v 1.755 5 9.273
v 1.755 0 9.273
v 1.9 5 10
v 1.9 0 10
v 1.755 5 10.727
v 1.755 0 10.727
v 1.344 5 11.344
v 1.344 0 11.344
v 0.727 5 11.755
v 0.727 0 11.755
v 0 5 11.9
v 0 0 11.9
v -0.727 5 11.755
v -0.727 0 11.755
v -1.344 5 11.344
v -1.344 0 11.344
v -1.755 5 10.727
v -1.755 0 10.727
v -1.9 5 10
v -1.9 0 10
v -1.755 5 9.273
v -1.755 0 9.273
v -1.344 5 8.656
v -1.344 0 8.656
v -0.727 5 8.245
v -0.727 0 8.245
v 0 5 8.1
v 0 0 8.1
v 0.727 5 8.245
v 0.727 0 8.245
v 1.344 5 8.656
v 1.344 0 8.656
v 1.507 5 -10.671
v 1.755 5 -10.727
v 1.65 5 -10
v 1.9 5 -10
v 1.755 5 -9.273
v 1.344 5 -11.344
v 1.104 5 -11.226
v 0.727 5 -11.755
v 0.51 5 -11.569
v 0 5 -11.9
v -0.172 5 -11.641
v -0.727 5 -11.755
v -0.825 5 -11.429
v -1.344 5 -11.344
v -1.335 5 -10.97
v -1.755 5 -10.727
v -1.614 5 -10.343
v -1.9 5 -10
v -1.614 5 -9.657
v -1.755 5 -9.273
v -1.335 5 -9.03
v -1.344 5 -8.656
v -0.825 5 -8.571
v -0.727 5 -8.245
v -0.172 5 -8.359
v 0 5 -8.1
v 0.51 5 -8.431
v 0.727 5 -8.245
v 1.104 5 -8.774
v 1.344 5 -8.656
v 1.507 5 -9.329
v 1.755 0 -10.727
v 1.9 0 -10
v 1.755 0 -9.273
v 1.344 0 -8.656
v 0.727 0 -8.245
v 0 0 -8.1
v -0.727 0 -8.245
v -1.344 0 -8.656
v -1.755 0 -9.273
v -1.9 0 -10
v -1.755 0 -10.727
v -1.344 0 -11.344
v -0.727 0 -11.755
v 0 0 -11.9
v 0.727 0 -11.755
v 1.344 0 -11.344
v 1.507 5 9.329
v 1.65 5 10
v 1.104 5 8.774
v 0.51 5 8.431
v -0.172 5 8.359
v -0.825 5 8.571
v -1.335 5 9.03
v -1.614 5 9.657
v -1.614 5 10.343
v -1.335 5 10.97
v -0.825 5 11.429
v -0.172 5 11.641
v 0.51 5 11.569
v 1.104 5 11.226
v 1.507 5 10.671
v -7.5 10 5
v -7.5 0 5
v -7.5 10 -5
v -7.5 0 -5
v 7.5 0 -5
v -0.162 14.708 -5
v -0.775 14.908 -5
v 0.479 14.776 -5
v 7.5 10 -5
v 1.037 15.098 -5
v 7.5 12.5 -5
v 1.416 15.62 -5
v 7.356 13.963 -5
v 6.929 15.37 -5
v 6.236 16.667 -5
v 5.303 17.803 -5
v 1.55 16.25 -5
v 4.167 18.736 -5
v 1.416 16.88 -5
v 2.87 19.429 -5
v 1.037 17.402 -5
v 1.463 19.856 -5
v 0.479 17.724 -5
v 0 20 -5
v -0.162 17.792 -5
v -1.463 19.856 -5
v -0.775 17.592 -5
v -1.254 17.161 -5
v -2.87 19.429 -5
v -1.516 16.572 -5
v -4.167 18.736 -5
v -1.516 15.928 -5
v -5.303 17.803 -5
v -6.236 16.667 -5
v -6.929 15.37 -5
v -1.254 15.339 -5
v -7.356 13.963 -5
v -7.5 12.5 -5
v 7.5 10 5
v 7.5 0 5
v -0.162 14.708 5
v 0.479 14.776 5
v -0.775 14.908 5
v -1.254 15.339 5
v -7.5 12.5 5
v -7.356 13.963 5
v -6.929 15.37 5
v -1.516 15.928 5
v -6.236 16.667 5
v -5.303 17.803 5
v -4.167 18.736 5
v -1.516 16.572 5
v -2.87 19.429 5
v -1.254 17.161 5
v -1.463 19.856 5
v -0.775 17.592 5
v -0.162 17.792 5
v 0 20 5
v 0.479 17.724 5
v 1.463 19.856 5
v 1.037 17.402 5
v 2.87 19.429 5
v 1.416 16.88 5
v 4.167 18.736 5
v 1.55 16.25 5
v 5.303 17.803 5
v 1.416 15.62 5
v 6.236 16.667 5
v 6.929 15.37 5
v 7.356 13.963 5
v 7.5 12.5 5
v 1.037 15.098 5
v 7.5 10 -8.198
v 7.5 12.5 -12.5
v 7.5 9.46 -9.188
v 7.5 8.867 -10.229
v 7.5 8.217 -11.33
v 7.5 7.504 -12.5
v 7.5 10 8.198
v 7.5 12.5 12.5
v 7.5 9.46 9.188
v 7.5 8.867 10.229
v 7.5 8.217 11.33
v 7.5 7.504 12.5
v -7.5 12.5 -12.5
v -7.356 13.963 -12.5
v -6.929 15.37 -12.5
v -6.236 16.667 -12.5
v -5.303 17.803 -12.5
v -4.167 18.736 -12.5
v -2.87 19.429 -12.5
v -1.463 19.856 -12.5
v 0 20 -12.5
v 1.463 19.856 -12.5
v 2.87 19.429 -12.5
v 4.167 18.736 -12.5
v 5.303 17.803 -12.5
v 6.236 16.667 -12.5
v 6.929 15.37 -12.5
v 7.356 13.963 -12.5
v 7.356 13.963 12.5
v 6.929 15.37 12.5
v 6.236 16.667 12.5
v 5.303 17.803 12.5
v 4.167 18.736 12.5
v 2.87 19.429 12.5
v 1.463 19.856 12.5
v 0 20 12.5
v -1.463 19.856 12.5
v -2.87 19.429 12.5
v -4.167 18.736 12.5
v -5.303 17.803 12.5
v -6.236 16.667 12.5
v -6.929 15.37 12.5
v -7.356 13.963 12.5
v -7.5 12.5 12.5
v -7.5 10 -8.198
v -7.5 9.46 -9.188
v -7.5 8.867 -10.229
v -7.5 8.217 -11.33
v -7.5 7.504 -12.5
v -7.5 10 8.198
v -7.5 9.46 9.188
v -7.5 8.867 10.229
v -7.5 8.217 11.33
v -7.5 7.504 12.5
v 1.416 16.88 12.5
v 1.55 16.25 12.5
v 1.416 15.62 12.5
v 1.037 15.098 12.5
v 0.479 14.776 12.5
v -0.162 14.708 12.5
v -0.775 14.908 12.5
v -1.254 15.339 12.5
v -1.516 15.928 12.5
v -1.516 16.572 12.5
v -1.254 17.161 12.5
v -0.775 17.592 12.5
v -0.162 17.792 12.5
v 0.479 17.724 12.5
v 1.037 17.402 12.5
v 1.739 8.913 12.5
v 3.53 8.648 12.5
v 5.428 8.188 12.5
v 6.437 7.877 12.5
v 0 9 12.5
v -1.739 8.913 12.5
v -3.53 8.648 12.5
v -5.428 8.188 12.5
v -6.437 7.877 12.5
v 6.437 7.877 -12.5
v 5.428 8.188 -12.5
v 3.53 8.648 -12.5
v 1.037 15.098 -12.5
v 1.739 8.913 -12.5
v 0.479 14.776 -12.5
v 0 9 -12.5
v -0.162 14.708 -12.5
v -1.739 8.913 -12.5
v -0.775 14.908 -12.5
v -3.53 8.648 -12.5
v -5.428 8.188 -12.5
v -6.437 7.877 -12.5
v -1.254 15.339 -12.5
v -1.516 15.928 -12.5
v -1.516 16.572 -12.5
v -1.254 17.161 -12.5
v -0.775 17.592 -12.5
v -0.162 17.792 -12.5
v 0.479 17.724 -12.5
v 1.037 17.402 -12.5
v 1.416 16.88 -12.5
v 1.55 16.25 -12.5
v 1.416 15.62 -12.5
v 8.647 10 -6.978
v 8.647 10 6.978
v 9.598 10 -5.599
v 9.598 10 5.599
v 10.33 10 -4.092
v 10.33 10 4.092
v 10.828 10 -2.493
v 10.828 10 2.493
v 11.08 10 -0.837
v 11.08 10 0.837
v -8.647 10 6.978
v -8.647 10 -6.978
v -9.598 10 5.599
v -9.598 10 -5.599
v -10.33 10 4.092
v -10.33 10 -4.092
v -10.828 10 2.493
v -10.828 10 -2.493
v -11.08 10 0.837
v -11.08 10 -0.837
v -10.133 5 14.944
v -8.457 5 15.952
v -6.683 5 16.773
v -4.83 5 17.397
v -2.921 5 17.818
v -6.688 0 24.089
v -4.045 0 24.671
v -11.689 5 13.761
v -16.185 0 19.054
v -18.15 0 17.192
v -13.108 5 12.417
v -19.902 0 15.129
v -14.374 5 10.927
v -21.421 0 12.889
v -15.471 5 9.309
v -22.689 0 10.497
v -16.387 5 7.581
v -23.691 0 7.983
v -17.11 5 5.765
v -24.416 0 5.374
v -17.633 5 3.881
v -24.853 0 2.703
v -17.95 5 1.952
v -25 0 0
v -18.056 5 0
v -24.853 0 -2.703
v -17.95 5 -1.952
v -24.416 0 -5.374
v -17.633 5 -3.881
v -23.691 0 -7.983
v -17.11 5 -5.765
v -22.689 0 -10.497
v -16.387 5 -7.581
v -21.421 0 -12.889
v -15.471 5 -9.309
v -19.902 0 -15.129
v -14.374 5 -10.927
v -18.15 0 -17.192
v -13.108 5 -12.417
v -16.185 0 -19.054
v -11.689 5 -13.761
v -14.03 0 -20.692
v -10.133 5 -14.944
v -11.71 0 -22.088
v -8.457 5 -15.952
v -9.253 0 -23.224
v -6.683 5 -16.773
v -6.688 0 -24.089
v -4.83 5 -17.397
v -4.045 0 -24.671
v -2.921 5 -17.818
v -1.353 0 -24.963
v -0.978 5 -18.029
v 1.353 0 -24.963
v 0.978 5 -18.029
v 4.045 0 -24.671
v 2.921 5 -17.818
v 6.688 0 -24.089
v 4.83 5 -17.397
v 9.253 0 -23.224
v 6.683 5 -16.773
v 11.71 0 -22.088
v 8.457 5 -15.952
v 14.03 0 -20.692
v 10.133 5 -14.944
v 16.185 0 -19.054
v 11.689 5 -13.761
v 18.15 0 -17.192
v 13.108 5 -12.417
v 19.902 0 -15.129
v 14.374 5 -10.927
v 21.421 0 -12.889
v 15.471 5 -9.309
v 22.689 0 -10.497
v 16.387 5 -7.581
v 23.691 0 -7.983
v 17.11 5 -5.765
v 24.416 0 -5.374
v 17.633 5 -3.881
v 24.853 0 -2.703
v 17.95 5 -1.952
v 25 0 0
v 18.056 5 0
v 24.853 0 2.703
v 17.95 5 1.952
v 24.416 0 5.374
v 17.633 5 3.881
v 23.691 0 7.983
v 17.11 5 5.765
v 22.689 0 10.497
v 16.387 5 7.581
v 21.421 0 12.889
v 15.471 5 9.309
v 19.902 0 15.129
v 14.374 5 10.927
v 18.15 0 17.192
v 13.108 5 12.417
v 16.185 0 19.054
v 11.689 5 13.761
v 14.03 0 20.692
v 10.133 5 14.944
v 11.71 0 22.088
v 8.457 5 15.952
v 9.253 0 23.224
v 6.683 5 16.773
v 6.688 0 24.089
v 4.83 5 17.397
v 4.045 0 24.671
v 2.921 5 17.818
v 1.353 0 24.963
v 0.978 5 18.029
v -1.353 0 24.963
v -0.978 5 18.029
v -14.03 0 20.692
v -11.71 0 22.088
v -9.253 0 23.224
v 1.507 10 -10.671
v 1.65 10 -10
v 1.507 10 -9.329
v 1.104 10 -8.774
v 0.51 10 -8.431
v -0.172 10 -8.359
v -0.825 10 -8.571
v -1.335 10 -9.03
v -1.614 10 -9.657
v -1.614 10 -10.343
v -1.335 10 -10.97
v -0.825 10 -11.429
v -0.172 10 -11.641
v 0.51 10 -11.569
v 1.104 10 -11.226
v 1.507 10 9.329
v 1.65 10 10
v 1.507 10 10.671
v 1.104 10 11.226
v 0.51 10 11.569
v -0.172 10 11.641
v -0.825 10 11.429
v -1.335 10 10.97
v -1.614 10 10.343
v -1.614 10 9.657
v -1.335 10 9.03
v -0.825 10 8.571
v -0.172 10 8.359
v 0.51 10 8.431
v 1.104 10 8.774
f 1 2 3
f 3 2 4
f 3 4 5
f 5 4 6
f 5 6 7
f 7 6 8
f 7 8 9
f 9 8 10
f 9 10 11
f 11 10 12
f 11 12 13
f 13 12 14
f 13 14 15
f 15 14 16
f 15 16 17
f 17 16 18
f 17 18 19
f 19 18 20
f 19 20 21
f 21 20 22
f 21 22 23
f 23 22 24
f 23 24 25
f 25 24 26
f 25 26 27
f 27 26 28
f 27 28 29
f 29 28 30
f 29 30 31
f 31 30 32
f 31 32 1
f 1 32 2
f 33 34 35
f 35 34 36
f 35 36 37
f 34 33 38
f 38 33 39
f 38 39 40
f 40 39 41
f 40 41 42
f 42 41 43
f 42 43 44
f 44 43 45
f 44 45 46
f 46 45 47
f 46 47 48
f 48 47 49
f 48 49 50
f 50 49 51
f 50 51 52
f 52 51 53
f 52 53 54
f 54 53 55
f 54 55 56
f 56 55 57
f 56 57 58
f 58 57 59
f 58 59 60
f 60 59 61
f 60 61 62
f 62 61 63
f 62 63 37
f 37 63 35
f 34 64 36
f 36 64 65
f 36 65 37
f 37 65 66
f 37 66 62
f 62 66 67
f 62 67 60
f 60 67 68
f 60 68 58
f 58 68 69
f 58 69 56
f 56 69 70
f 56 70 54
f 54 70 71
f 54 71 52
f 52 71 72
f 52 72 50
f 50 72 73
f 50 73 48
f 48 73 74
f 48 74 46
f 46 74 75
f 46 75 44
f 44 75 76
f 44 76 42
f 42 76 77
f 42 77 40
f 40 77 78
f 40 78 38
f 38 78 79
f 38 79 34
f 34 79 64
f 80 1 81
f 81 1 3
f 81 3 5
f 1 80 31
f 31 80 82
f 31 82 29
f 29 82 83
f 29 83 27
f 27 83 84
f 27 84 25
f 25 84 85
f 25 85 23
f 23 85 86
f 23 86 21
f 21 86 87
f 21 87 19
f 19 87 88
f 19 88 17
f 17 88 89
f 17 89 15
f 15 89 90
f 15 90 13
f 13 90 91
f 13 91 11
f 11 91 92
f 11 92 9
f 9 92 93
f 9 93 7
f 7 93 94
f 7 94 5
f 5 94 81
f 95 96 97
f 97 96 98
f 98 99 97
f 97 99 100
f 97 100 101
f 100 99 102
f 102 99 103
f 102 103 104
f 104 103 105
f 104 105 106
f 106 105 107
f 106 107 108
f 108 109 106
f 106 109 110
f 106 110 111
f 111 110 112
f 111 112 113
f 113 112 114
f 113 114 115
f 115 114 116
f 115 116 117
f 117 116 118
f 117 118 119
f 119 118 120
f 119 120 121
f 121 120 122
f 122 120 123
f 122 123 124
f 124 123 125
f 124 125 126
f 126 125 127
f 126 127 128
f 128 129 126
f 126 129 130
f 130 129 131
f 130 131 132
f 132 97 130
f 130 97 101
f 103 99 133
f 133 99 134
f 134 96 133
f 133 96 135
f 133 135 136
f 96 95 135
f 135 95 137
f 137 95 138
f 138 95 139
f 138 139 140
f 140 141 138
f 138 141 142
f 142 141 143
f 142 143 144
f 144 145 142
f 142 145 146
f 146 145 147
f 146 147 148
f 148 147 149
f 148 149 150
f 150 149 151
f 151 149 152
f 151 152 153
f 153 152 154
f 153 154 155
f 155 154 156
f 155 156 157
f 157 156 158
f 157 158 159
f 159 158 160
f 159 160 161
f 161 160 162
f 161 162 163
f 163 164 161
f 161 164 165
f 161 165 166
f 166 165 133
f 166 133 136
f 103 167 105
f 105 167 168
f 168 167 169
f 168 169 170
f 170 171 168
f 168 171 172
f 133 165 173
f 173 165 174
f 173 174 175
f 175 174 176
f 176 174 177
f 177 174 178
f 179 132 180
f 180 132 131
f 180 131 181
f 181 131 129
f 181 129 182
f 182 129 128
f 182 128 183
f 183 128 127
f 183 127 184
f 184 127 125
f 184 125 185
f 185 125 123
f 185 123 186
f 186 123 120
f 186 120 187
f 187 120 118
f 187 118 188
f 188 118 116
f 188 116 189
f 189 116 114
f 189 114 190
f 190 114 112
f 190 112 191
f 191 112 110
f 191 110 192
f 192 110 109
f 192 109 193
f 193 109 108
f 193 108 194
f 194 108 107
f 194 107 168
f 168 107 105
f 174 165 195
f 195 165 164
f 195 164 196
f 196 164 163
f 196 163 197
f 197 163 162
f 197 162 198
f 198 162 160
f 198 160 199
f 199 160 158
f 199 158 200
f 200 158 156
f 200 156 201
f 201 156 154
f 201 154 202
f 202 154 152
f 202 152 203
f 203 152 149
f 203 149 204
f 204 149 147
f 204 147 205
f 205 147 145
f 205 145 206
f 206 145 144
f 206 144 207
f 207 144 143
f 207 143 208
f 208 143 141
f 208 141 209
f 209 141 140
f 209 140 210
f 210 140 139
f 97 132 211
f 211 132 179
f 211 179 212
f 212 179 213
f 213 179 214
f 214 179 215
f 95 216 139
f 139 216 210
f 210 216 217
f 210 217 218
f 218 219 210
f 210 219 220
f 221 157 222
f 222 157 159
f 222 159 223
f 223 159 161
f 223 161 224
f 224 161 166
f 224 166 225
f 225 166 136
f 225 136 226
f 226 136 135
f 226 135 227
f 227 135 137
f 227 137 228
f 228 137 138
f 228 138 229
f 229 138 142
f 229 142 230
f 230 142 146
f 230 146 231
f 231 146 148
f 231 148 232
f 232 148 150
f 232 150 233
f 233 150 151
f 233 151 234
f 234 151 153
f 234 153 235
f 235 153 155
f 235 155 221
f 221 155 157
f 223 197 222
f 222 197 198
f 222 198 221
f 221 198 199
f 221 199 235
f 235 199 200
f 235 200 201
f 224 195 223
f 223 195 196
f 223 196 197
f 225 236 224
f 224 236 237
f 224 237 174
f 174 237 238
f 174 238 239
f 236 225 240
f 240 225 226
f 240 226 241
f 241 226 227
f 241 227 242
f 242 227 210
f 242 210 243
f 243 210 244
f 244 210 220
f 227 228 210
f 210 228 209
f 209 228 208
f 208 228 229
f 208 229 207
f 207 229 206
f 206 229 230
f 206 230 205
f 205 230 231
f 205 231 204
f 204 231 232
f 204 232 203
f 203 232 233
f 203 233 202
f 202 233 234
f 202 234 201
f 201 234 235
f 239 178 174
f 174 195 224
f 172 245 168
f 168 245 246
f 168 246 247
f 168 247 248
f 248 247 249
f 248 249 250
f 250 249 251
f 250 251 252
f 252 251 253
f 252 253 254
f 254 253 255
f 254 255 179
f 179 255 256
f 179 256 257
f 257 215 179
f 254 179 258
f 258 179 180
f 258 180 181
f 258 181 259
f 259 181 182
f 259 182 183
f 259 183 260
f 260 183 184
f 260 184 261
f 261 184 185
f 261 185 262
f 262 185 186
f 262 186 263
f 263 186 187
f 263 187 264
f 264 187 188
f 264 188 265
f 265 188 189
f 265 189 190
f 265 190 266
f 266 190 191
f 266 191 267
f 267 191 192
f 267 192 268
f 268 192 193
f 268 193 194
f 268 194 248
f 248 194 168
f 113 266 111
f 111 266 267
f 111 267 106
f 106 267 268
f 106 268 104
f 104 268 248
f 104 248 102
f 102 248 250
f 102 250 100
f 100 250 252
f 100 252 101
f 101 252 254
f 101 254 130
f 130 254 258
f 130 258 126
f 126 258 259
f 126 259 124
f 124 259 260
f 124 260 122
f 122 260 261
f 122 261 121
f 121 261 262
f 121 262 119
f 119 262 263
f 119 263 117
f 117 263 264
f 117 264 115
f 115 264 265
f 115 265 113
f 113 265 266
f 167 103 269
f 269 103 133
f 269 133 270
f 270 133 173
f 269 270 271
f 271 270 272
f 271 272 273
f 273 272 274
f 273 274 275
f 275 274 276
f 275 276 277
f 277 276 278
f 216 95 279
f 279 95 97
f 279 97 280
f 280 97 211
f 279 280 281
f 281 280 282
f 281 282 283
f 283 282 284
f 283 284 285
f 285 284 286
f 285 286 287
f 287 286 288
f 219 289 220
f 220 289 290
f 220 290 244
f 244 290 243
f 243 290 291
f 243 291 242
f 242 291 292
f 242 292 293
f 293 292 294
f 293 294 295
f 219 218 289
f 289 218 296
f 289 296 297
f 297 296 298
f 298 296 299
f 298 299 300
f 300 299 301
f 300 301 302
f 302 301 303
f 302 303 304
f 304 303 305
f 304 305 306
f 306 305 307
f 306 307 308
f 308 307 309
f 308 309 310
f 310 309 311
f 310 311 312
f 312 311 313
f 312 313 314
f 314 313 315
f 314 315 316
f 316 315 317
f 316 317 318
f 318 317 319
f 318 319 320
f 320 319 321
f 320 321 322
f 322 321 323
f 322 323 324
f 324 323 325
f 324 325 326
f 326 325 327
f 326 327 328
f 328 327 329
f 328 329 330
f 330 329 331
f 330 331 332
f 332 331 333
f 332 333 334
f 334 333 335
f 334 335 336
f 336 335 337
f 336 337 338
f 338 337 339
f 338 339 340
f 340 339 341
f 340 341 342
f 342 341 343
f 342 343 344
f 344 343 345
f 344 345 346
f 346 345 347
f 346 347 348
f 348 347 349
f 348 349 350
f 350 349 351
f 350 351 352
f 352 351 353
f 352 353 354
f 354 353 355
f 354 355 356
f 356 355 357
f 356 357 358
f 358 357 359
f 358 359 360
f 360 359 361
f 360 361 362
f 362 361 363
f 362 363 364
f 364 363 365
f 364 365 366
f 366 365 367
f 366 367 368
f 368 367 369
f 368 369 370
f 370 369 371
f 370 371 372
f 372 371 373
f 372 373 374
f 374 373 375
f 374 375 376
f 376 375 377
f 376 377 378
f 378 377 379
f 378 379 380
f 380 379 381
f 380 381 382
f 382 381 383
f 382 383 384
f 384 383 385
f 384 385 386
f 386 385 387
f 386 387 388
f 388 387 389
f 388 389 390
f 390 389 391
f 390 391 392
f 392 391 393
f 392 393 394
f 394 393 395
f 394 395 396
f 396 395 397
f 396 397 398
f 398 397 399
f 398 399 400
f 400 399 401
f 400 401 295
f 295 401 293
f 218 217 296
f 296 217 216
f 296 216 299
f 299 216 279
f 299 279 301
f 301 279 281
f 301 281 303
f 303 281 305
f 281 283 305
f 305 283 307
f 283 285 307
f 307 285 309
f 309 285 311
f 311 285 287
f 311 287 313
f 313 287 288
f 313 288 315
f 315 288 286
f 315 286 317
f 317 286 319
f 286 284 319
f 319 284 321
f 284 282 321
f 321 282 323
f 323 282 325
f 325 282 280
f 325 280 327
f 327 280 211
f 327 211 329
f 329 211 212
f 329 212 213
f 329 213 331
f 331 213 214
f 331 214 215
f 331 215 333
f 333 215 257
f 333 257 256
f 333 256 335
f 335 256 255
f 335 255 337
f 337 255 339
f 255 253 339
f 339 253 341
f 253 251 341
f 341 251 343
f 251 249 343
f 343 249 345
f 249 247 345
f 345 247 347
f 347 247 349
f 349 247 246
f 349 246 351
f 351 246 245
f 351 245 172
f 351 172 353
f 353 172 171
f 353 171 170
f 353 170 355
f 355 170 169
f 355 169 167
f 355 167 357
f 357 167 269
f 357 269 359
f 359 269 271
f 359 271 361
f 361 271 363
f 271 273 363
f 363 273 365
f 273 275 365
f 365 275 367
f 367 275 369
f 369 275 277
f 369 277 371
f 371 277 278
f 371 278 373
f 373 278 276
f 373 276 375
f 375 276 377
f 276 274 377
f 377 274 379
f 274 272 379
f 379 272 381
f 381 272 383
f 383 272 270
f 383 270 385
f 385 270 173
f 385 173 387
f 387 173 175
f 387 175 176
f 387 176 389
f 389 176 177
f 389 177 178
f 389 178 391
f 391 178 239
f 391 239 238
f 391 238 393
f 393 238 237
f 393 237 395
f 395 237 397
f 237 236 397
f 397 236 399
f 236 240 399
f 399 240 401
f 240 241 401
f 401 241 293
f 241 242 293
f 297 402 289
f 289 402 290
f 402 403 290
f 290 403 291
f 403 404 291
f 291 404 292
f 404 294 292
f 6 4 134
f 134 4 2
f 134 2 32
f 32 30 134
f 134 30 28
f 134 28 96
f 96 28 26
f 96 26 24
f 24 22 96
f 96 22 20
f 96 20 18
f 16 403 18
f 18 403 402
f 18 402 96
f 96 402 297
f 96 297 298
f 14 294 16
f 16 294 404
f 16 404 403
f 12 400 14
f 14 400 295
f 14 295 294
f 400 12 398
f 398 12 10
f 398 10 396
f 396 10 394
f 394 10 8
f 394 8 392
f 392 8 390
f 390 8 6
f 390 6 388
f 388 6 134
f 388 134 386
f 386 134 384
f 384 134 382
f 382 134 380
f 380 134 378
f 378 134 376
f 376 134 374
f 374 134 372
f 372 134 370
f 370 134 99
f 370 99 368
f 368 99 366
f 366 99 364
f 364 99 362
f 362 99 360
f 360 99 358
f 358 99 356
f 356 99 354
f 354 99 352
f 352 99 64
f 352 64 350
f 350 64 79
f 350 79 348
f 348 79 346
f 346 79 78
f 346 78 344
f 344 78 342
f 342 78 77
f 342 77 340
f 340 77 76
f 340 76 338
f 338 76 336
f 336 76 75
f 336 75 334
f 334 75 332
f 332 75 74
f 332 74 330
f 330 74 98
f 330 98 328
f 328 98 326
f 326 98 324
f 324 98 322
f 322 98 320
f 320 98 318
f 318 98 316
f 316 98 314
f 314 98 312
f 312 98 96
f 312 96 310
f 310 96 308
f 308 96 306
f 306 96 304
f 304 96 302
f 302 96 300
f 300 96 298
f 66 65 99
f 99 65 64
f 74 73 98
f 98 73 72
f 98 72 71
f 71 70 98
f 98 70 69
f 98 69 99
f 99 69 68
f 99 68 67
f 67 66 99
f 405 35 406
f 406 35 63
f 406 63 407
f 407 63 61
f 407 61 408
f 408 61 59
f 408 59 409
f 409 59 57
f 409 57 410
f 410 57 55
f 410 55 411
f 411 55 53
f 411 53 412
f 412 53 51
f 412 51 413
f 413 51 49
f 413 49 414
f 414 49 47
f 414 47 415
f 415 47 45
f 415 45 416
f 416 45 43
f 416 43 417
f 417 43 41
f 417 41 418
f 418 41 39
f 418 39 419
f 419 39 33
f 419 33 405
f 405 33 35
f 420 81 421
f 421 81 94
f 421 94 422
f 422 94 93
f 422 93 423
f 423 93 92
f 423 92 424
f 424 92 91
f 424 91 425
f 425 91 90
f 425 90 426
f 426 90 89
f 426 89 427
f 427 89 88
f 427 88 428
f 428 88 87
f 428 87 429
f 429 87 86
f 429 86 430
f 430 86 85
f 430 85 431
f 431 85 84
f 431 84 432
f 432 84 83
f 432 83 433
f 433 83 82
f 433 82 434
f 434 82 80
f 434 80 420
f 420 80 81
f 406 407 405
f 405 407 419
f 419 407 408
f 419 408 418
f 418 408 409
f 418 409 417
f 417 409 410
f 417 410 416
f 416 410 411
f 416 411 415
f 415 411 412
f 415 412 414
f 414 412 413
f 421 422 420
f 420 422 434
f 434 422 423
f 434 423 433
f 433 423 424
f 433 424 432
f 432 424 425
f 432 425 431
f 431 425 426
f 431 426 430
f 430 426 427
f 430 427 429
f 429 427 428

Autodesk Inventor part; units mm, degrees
ref_plane "YZ Plane" through (0, 0, 0) normal (1, 0, 0) x (0, 1, 0)
ref_plane "XZ Plane" through (0, 0, 0) normal (0, 1, 0) x (-1, 0, 0)
sketch "Эскиз1" plane through (0, 0, 0) normal (0, 0, 1) x (1, 0, 0)
  line L0 (0, 0) -> (25, 0)
  line L1 (0, 0) -> (0, 18)
  line L2 (0, 18) -> (25, 0)
  line L3 (0, -3.6) -> (0, 21.6) projected
  dimension "d0" = 25
  dimension "d2" = 18
revolve "Вращение1" add sketch "Эскиз1" angle 360 about axis through (0, -10, 0) along (0, 1, 0)
ref_plane "РабПлоскость1" through (0, 10, 0) normal (0, -1, 0) x (1, 0, 0)
sketch "Эскиз2" plane through (0, 10, 0) normal (0, -1, 0) x (1, 0, 0)
  circle A0 centre (0, 0) radius 11.1111 projected
extrude "Выдавливание1" cut sketch "Эскиз2" against normal blind 10
sketch "Эскиз3" plane through (0, 0, 0) normal (0, 0, 1) x (1, 0, 0)
  line L0 (-7.5, 12.5) -> (-7.5, 0)
  line L1 (-7.5, 0) -> (7.5, 0)
  line L2 (7.5, 0) -> (7.5, 12.5)
  arc A0 (7.5, 12.5) -> (-7.5, 12.5) centre (0, 12.5) ccw
  line L3 (0, 12.5) -> (0, 20) construction
  circle A1 centre (0, 16.25) radius 1.55
  point P0 (0, 0)
  point P1 (0, 0)
  dimension "d10" = 3.1
extrude "Выдавливание2" add sketch "Эскиз3" along normal mid plane 25
extrude "Выдавливание3" cut sketch "Эскиз3" along normal mid plane 10
sketch "Эскиз6" plane through (0, 0, 0) normal (0, -1, 0) x (1, 0, 0)
  circle A0 centre (-58.3547, -41.682) radius 1.575 construction
  circle A1 centre (-58.3429, -21.682) radius 1.575 construction
  circle A2 centre (-58.3547, -41.682) radius 1.35
  circle A3 centre (-58.3429, -21.682) radius 1.35
  point P0 (0, 0)
  dimension "d24" = 2.7
  dimension "d25" = 2.7
sketch "Эскиз7" plane through (0, 0, 0) normal (0, -1, 0) x (1, 0, 0)
  circle A0 centre (0, -10) radius 1.9
  circle A1 centre (0, 10) radius 1.9
  circle A2 centre (0, 0) radius 25 projected
  line L0 (0, -10) -> (0, 10) construction
  dimension "d29" = 3.8
  dimension "d30" = 20
extrude "Выдавливание7" cut sketch "Эскиз7" against normal blind 5 contours A0 | A1
sketch "Эскиз8" plane through (0, 5, 10) normal (0, -1, 0) x (1, 0, 0)
  circle A0 centre (0, 0) radius 1.9 projected
  circle A1 centre (0, -20) radius 1.9 projected
  circle A2 centre (0, 0) radius 1.9 projected
  circle A3 centre (0, 0) radius 1.65
  circle A4 centre (0, -20) radius 1.65
  point P0 (0, -10)
  dimension "d33" = 3.3
extrude "Выдавливание8" cut sketch "Эскиз8" against normal blind 5 contours A3 | A4
properties part number "стенд"
